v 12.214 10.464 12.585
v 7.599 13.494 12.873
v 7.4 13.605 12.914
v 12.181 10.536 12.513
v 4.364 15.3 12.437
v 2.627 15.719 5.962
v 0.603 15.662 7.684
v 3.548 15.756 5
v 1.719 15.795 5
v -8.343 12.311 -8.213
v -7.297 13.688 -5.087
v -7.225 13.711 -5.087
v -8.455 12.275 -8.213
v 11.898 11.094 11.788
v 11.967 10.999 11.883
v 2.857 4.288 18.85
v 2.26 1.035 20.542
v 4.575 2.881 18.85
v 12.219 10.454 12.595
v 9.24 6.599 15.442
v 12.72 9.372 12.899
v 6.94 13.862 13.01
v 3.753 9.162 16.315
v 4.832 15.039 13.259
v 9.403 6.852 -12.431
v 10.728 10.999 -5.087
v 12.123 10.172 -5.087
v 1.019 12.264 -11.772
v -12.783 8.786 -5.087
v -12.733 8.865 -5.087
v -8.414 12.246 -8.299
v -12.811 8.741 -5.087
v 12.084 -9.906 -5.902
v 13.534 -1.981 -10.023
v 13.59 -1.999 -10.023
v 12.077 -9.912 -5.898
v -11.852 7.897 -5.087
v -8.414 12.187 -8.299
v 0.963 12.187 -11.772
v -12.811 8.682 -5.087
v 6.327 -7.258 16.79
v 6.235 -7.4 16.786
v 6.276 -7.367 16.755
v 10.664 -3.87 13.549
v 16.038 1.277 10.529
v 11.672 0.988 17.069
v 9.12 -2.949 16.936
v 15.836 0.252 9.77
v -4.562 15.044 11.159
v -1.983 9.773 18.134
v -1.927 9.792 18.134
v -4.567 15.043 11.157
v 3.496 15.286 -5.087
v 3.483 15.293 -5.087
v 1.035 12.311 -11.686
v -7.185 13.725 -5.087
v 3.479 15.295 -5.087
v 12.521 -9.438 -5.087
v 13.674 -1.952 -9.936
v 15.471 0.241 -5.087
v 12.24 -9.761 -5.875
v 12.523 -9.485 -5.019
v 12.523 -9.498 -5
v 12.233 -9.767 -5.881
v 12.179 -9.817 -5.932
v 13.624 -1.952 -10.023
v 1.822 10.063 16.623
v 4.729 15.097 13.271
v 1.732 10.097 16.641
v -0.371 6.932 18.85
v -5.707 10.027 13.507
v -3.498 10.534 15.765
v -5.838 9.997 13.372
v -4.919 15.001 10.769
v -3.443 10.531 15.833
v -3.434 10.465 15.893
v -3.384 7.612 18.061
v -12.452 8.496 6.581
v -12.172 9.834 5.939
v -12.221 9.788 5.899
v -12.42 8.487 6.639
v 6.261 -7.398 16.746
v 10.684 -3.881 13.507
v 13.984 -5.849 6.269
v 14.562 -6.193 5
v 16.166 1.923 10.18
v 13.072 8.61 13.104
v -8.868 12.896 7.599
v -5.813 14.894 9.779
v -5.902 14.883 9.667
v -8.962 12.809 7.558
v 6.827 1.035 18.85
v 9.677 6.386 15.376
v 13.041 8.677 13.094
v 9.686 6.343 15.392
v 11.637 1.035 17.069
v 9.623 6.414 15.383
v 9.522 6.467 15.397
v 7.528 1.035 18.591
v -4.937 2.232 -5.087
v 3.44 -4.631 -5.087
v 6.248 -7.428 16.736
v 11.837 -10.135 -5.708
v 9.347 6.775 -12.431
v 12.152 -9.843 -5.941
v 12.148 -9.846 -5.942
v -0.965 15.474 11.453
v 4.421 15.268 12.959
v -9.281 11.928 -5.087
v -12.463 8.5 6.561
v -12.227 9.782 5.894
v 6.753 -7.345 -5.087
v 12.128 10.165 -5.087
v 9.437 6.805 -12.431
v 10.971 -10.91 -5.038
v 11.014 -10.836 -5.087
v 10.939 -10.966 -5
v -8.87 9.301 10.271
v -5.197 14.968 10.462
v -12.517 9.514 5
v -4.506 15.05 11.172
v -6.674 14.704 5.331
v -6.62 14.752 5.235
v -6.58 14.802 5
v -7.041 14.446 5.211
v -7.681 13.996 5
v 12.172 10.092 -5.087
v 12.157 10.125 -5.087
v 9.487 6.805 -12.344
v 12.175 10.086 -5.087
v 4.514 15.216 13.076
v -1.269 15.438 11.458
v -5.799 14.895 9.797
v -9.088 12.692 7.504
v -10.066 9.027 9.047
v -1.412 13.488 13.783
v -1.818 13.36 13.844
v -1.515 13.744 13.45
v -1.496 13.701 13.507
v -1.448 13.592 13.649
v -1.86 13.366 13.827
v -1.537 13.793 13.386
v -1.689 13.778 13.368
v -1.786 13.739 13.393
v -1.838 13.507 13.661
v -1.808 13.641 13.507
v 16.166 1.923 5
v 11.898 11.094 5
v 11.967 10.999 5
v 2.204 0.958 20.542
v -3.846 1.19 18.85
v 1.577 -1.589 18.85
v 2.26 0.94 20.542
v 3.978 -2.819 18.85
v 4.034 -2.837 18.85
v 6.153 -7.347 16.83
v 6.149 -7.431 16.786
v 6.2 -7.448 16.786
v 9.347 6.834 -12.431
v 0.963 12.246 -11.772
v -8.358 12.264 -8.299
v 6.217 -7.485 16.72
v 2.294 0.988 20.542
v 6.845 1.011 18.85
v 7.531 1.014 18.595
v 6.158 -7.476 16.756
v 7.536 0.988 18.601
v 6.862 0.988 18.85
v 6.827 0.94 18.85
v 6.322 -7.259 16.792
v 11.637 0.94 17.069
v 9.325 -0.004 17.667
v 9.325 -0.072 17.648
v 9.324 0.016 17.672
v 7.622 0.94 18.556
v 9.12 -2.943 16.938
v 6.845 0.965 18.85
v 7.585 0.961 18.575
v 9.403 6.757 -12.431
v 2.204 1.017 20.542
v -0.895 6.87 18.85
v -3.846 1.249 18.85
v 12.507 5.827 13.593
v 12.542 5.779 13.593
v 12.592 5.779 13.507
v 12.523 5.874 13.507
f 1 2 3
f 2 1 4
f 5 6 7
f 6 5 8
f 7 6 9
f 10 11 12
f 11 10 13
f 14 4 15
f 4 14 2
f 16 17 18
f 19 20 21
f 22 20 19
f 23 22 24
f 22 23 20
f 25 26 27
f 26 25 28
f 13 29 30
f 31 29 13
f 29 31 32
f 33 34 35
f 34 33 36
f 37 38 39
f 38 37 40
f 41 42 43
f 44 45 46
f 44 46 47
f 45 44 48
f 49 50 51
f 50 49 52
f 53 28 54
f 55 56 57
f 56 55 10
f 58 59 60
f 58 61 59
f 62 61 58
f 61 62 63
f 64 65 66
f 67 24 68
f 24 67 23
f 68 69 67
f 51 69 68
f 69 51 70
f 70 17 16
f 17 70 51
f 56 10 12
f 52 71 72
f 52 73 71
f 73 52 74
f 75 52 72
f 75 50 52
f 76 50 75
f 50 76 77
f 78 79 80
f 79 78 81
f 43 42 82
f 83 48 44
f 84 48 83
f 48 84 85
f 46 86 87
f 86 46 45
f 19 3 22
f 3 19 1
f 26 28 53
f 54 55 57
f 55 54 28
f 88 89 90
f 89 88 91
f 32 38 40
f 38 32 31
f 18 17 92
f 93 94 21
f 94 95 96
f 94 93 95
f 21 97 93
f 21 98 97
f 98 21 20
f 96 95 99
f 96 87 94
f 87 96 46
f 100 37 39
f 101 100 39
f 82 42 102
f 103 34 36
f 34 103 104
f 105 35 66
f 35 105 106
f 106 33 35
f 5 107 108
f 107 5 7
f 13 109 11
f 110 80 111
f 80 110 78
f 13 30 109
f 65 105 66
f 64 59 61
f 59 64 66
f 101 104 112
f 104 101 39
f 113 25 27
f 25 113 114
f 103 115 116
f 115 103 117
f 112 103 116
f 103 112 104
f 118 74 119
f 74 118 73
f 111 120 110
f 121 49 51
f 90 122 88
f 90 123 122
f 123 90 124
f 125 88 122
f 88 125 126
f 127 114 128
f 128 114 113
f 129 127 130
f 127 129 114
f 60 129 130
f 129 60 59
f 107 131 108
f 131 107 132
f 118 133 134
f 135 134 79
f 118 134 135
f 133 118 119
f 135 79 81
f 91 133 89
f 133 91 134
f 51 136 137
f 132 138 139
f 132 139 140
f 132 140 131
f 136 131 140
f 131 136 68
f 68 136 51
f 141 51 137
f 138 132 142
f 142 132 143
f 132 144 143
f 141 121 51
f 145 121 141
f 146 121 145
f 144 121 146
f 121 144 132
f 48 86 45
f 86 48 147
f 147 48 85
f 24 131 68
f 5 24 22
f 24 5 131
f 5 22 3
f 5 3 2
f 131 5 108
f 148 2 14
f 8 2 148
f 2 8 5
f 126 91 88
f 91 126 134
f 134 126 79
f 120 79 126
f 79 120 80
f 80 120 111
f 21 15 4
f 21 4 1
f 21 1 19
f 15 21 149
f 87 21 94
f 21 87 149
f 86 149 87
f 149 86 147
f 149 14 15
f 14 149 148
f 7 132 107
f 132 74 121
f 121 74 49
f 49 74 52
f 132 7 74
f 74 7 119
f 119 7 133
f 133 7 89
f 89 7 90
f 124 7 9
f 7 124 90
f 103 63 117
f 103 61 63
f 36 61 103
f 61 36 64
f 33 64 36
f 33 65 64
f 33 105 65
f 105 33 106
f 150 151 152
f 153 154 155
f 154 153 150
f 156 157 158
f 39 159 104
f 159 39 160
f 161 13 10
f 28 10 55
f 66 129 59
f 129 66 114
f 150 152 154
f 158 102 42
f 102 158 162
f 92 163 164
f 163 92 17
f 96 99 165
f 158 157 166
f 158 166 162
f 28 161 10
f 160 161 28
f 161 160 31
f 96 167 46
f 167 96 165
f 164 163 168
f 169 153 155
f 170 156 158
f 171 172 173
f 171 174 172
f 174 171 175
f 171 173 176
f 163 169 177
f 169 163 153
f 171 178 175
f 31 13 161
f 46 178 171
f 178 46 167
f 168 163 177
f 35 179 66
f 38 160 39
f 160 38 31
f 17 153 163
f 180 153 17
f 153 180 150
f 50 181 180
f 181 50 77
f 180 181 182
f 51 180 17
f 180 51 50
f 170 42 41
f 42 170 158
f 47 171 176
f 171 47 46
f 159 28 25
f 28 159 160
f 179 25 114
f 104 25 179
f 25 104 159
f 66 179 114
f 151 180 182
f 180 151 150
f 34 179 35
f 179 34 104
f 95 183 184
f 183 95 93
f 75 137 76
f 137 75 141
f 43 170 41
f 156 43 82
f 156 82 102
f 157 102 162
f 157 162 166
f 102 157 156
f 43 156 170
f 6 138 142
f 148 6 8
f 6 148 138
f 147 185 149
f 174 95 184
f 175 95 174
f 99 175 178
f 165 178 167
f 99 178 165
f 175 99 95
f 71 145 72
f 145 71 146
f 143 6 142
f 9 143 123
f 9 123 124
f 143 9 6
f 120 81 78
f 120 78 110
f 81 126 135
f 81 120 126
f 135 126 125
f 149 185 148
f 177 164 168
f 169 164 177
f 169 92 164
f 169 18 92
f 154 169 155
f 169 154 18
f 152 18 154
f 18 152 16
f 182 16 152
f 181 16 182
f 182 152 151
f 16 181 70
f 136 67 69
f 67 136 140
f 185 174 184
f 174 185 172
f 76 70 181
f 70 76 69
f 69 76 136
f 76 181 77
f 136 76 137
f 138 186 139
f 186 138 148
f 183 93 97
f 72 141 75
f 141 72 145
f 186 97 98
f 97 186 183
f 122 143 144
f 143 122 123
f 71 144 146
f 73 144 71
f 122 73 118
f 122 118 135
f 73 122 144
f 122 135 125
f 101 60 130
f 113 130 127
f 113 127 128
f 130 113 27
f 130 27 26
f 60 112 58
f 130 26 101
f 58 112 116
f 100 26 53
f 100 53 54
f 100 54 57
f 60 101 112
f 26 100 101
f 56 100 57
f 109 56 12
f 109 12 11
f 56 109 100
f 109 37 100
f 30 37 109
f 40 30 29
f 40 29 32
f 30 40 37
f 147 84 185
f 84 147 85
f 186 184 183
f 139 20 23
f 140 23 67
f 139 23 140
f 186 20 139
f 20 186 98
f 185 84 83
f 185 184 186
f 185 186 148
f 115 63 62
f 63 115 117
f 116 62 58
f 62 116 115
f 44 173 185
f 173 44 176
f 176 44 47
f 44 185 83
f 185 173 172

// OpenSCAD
// Auto-generated OpenSCAD file

    inner_points = 10*[[1.412777650098969, -0.7887289142225774, 0.5000000000000034], [1.4127776500989218, -0.7887289142226671, -0.4999999999999966], [-1.4127776500989218, 0.7887289142226671, 0.4999999999999966], [-1.412777650098969, 0.7887289142225774, -0.5000000000000034], [1.606564352039886, 0.19231477193561908, 0.4999999999999063], [1.6065643520398385, 0.19231477193552948, -0.5000000000000936], [0.6793579043664613, -1.4685049630575326, 0.5000000000000991], [0.6793579043664137, -1.4685049630576223, -0.49999999999990086], [-0.6793579043664137, 1.4685049630576223, 0.49999999999990086], [-0.6793579043664613, 1.4685049630575326, -0.5000000000000991], [-1.6065643520398385, -0.19231477193552948, 0.5000000000000936], [-1.606564352039886, -0.19231477193561908, -0.4999999999999063], [1.186698076615527, 1.0999007517531108, 0.49999999999984507], [1.1866980766154795, 1.0999007517530213, -0.500000000000155], [-0.31355347030812525, -1.5873620286524022, 0.500000000000157], [-0.3135534703081727, -1.5873620286524917, -0.49999999999984296], [0.3135534703081727, 1.5873620286524917, 0.49999999999984296], [0.31355347030812525, 1.5873620286524022, -0.500000000000157], [-1.1866980766154795, -1.0999007517530213, 0.500000000000155], [-1.186698076615527, -1.0999007517531108, -0.49999999999984507], [0.9356314635858262, -1.0094656781426679, 1.3506508083520856], [-1.3502907928204737, 0.2667245129793352, 1.3506508083520803], [1.2491849338939751, 0.5778963505097789, 1.3506508083519289], [-0.16359271620497018, 1.3666252647324013, 1.3506508083519253], [-0.6709328884540361, -1.2017804500782423, 1.3506508083521793], [0.8345256046592242, -0.16484481465374887, 1.8763819204711487], [-0.5782520454397211, 0.6238840995688734, 1.8763819204711452], [0.10110585892671631, -0.8446208634887041, 1.8763819204712444], [-0.772038747380638, -0.35715958658932323, 1.8763819204712422], [0.41465932923486515, 0.7427411651637427, 1.8763819204710874]];

    outer_points = 10*[[1.6771921982195477, 0.19515858012450776, -0.13028218445037648], [1.3574270510105522, -0.19515858012450776, -0.9936492935329229], [-1.3574270510105522, 0.19515858012450776, 0.9936492935329229], [-1.6771921982195477, -0.19515858012450776, 0.13028218445037648], [1.2584841650715657, 1.0707777336101003, -0.3710615046307498], [0.9387190178625701, 0.6804605733610847, -1.2344286137132965], [1.516339526221925, -0.6804605733610847, 0.3251489475118551], [1.1965743790129293, -1.0707777336101003, -0.5382181615706915], [-1.1965743790129293, 1.0707777336101003, 0.5382181615706915], [-1.516339526221925, 0.6804605733610847, -0.3251489475118551], [-0.9387190178625701, -0.6804605733610847, 1.2344286137132965], [-1.2584841650715657, -1.0707777336101003, 0.3710615046307498], [0.4201476640778902, 1.6119401316646074, -0.3052194965084559], [0.10038251686889449, 1.221622971415592, -1.1685866055910024], [0.8373664026005505, -1.221622971415592, 0.8212726783812108], [0.5176012553915548, -1.6119401316646074, -0.04209443070133567], [-0.5176012553915548, 1.6119401316646074, 0.04209443070133567], [-0.8373664026005505, 1.221622971415592, -0.8212726783812108], [-0.10038251686889449, -1.221622971415592, 1.1685866055910024], [-0.4201476640778902, -1.6119401316646074, 0.3052194965084559], [1.7170785381923828, 0.1355933980850842, 0.8671450404498573], [-0.7379800058921122, 0.1355933980850842, 1.7764247066512986], [1.03959470919633, 1.552374949625184, 0.4775559166099197], [-0.47771491541871985, 1.552374949625184, 1.0395216556015694], [0.6184769467253148, -0.7400257554005085, 1.6698900996218804], [1.3230216188344461, 0.9743992445242382, 1.2428096465623142], [-0.19428800578060368, 0.9743992445242382, 1.8047753855539637], [1.1621689468368233, 0.0987800910386456, 1.6982407785245455], [0.22442002736737826, 0.0987800910386456, 2.0455547057343373], [0.4846851178407707, 1.5155616425787453, 1.308651654684608]];

    // Convex hull for inner set (I)
    module inner_hull() {
        hull() {
            for (p = inner_points) {
                translate(p) sphere(r=0.1);
            }
        }
    }

    // Convex hull for outer set (O) minus inner hull (O \ I)
    module outer_minus_inner() {
        difference() {
            hull() {
                for (p = outer_points) {
                    translate(p) sphere(r=0.1);
                }
            }
            inner_hull(); // Subtract inner hull
        }
    }

    // Convex hull for outer set (O) minus all translated inner hulls
    module outer_minus_AllTranslationInner() {
        difference() {
            hull() {
                for (p = outer_points) {
                    translate(p) sphere(r=0.1);
                }
            }
            hull() {
                translate([0,0,50]) inner_hull();
                translate([0,0,-50]) inner_hull();
            }; // Subtract translated inner hulls
        }
    }

    // Difference between outer_minus_inner and outer_minus_AllTranslationInner
    module outer_minus_inner_diff() {
        difference() {
            // Outer minus inner
            difference() {
                hull() {
                    for (p = outer_points) {
                        translate(p) sphere(r=0.1);
                    }
                }
                inner_hull();
            }

            // Subtract Outer minus AllTranslationInner
            difference() {
                hull() {
                    for (p = outer_points) {
                        translate(p) sphere(r=0.1);
                    }
                }
                hull() {
                    translate([0,0,50]) inner_hull();
                    translate([0,0,-50]) inner_hull();
                };
            }
        }
    }

    // Rendering all with colors applied
    color([1, 1, 0, 1]) outer_minus_inner_diff(); // Opaque yellow
    
